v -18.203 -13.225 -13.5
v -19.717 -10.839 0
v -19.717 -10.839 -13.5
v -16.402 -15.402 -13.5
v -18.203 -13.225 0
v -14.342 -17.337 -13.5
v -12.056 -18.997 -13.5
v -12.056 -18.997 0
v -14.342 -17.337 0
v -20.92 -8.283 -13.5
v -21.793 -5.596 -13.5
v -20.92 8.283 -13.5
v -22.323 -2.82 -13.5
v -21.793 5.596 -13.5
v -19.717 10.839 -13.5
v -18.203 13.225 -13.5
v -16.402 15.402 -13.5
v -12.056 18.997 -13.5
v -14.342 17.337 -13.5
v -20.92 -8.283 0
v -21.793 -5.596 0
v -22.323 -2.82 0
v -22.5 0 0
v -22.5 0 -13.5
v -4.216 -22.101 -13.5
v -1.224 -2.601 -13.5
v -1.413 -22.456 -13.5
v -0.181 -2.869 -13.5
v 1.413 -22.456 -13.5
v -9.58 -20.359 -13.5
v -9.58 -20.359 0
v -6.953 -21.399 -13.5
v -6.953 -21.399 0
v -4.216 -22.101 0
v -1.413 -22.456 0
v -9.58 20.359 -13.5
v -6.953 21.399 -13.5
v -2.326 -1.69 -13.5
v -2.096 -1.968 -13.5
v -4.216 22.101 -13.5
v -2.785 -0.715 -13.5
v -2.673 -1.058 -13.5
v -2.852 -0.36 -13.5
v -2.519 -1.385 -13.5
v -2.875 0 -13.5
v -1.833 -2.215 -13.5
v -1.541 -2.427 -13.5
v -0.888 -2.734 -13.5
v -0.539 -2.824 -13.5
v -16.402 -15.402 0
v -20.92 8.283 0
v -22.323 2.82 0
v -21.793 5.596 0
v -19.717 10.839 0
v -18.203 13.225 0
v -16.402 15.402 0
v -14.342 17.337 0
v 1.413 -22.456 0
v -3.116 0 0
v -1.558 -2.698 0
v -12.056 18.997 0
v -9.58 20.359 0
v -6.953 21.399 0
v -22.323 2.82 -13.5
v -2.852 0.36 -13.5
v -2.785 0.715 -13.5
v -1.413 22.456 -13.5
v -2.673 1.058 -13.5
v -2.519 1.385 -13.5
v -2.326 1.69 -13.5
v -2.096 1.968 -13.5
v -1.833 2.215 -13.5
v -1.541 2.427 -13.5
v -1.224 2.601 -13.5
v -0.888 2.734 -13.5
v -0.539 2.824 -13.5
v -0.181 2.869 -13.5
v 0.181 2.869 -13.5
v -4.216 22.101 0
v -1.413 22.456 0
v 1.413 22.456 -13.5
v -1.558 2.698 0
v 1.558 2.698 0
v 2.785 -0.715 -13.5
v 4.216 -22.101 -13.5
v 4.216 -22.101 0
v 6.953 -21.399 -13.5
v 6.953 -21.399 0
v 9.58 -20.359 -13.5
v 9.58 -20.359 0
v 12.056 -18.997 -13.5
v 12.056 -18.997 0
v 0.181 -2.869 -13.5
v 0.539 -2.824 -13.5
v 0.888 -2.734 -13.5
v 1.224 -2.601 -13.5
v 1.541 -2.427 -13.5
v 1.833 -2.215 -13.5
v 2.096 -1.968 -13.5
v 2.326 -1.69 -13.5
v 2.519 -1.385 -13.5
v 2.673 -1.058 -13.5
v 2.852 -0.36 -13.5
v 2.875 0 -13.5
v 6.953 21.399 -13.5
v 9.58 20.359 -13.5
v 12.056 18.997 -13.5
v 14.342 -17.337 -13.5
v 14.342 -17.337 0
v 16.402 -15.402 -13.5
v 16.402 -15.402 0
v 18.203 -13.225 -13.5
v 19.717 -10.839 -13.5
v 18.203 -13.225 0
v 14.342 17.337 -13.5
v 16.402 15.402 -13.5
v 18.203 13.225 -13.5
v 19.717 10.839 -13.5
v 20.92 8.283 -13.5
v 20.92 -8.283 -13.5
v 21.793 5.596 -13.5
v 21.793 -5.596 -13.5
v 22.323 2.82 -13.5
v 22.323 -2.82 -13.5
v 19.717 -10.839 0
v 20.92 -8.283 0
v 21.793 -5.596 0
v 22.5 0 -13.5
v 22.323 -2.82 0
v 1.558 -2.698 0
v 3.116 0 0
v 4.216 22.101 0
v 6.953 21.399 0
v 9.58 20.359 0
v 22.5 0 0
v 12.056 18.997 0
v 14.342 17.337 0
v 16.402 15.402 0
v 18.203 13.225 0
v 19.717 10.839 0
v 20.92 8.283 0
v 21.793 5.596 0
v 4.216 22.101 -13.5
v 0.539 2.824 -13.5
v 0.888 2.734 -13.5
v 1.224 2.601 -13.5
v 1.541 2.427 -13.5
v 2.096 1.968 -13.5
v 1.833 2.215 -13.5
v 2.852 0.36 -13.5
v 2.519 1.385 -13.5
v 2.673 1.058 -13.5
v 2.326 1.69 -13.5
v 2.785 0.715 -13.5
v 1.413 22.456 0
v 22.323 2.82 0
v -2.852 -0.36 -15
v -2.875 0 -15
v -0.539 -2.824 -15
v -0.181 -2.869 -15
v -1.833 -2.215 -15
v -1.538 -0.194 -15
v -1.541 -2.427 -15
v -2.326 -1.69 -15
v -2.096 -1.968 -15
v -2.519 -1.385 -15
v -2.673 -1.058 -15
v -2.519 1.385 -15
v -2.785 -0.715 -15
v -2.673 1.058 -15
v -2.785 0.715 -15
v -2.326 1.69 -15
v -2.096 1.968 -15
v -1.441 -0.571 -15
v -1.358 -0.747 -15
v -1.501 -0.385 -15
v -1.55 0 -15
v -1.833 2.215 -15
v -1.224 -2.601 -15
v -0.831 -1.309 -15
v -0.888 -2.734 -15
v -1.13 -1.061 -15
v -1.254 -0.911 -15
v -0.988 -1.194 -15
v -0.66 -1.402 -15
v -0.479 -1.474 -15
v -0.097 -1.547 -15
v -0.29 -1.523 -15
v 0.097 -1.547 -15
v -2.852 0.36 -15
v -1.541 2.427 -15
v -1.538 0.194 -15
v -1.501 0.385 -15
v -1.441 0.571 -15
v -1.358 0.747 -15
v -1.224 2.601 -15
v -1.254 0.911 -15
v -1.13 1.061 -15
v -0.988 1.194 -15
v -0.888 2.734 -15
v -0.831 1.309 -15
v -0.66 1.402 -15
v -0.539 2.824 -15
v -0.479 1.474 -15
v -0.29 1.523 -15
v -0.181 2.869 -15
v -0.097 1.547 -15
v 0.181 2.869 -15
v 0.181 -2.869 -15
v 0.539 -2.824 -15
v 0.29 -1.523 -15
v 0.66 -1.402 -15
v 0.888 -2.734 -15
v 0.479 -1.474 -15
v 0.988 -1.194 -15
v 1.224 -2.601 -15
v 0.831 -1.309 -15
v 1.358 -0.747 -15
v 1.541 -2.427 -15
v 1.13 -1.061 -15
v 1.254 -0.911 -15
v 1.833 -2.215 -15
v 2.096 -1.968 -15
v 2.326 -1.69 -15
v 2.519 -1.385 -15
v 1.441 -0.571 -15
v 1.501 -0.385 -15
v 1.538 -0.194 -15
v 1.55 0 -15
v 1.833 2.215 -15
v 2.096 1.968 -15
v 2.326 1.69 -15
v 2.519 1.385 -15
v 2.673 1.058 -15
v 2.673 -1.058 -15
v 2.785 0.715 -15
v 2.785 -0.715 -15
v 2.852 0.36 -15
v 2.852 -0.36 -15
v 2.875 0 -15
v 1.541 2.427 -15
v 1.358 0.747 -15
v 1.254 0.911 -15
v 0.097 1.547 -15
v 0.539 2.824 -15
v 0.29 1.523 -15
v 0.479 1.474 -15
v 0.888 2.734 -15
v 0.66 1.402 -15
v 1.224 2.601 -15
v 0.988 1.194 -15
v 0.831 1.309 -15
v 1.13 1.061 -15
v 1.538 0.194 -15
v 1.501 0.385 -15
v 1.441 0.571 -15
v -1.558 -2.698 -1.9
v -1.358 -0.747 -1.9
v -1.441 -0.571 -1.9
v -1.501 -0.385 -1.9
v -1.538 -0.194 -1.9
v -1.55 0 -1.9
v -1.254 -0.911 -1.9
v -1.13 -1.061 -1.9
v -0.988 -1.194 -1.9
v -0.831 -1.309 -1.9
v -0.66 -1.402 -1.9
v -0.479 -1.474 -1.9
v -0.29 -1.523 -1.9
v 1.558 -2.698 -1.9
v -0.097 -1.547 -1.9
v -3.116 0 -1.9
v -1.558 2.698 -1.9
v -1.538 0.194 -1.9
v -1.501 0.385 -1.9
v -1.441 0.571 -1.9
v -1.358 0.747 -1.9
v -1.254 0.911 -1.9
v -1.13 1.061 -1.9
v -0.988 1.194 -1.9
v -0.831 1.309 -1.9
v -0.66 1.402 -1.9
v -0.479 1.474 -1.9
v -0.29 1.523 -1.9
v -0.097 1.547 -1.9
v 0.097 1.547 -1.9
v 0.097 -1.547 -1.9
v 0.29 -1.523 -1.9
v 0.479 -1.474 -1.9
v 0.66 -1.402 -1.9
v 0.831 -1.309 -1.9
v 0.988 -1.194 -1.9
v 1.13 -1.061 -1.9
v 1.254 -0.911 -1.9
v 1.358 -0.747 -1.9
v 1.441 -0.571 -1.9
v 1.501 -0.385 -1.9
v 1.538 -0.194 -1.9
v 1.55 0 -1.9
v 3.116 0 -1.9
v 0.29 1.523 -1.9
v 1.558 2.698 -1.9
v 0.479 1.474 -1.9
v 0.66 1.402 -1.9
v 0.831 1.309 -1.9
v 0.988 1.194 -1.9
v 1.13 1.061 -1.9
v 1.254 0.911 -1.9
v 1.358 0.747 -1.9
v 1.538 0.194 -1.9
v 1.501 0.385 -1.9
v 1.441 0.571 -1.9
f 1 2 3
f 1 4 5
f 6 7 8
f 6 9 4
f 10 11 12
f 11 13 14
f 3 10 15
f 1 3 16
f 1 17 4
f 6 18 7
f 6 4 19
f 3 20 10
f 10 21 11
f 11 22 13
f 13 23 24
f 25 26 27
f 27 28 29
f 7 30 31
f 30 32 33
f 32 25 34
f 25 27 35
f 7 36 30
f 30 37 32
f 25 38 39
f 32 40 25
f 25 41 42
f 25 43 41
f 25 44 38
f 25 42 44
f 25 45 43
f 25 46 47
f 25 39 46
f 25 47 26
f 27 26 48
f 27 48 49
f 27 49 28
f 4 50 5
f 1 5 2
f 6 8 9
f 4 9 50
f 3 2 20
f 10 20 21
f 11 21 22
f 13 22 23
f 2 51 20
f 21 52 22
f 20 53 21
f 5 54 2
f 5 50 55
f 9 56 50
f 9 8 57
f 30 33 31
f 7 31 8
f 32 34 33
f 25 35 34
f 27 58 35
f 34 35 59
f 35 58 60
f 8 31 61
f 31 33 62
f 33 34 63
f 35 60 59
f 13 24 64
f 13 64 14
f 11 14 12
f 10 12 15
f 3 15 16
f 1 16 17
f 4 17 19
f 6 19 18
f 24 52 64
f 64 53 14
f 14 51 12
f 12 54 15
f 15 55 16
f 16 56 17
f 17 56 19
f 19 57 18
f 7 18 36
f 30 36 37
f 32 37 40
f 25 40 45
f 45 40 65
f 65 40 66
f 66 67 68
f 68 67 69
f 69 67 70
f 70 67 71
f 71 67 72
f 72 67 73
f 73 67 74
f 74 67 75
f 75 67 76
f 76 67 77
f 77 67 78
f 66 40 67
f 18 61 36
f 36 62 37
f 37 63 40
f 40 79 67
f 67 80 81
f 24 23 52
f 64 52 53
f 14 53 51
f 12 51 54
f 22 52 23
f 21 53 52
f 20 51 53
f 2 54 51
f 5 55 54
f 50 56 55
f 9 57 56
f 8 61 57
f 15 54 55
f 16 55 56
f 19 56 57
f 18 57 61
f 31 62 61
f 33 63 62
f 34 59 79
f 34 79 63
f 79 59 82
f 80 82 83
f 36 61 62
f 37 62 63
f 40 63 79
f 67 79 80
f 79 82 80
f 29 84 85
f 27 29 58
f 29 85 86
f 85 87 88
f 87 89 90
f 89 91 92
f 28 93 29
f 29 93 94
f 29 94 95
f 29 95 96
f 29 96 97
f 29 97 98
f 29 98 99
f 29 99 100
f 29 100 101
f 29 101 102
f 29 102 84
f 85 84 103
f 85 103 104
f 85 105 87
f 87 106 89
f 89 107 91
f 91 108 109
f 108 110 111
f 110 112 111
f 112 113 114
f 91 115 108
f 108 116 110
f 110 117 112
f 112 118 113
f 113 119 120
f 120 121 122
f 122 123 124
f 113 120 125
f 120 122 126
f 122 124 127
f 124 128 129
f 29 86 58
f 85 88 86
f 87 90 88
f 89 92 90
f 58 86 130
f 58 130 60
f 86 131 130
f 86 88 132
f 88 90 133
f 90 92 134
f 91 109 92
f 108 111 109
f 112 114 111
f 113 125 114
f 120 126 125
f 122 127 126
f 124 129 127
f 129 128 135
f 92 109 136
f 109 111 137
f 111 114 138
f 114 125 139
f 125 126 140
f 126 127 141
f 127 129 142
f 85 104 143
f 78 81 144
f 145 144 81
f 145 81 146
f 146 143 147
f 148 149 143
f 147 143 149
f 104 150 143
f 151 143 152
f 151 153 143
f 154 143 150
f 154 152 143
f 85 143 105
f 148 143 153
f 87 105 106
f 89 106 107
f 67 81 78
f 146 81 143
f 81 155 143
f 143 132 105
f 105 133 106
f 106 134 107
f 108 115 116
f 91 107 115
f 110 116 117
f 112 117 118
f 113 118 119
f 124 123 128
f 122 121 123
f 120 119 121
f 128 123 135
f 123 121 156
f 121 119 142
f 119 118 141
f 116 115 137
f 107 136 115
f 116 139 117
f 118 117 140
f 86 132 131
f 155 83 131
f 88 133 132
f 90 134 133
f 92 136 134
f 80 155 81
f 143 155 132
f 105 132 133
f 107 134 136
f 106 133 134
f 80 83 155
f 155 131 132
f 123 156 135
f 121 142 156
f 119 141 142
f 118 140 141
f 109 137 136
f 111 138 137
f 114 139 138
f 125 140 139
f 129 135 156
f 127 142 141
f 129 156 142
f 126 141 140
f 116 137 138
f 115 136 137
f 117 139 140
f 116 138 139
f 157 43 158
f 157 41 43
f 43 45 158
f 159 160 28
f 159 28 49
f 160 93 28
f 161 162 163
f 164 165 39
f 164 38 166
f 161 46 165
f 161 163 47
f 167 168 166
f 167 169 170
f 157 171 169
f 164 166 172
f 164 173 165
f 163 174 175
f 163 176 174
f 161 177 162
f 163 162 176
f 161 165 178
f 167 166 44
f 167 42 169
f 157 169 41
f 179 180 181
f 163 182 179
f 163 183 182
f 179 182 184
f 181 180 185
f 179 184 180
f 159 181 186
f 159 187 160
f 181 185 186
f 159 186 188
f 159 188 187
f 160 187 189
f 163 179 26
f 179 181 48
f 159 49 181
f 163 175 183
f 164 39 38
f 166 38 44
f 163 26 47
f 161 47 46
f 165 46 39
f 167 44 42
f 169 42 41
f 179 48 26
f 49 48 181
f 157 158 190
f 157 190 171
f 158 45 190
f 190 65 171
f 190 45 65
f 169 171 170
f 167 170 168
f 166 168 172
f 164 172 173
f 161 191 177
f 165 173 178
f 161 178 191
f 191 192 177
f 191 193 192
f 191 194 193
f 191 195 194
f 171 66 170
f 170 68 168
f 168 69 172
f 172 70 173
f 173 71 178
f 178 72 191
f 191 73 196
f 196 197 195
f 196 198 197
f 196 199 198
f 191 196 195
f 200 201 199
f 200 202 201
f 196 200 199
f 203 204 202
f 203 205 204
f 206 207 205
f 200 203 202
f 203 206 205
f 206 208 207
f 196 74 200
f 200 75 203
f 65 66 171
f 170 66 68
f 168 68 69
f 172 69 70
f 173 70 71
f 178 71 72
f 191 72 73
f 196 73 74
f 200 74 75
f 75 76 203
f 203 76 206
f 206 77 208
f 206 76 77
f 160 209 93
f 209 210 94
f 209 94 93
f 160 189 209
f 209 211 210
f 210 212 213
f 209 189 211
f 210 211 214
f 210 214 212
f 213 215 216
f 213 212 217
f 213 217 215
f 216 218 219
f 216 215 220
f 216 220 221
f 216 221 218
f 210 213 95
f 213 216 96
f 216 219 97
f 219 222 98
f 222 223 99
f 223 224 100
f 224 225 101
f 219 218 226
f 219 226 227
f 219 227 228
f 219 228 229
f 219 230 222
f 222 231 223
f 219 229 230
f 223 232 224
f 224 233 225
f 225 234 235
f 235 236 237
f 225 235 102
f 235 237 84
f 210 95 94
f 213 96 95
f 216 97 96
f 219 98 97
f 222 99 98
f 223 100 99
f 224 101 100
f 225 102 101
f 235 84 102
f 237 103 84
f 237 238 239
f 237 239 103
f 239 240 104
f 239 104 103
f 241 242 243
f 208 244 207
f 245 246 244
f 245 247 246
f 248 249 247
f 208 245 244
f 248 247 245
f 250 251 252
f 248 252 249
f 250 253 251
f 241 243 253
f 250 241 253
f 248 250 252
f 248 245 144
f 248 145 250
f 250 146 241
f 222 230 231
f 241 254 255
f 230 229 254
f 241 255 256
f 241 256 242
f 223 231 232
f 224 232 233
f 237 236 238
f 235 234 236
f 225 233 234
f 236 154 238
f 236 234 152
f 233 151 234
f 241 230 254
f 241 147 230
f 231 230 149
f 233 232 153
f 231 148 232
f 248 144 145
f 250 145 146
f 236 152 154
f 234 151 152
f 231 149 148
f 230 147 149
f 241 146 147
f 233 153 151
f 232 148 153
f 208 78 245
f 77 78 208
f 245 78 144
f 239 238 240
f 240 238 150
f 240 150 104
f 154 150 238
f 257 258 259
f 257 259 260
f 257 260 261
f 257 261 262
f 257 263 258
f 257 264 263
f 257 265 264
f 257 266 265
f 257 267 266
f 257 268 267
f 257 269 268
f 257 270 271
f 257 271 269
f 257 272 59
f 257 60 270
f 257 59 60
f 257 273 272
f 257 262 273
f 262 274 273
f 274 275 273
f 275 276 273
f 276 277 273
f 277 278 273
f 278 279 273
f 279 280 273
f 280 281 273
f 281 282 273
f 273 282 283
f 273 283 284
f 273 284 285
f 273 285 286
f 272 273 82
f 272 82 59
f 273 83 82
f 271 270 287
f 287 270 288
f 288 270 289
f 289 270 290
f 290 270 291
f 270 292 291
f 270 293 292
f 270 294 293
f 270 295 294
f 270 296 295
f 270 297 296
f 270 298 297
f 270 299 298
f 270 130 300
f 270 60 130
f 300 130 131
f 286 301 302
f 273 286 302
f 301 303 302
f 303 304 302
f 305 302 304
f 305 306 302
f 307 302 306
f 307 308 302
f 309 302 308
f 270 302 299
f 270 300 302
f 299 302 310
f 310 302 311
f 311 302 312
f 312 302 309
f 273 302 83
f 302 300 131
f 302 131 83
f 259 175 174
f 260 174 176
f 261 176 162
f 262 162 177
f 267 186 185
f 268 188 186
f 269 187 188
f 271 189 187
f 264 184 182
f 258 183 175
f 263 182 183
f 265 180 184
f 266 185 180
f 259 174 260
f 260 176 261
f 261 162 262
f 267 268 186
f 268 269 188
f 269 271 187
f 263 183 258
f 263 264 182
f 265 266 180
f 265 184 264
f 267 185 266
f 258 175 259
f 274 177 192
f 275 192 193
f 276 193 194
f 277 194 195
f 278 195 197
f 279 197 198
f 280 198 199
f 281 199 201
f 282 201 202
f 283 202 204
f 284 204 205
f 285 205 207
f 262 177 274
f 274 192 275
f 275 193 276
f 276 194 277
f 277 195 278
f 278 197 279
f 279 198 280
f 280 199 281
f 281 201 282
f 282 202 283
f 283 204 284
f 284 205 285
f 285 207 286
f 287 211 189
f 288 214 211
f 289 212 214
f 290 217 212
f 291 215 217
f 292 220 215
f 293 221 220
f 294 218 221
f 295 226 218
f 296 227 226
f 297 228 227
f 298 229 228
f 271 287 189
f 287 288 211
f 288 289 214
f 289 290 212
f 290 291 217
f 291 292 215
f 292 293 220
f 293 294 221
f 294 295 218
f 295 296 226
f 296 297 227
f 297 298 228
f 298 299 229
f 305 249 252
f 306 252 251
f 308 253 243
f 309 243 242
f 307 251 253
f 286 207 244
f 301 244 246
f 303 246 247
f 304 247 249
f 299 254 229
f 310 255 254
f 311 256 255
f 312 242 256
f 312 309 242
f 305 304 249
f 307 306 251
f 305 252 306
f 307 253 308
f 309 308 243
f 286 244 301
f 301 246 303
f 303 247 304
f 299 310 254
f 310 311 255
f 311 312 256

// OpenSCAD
$fn = 50;

difference() {
	union() {
		translate(v = [0, 0, -13.5]) {
			cylinder(h = 13.5, r = 22.5);
		}
		#translate(v = [0, 0, -15.0]) {
			cylinder(h = 15, r = 2.875);
		}
	}
	union() {
		translate(v = [0, 0, 0]) {
			rotate(a = [0, 0, 0]) {
				difference() {
					union() {
						translate(v = [0, 0, -1.9]) {
							linear_extrude(height = 1.9) {
								polygon(points = [[3.1158, 0.0], [1.5579000000000005, 2.698361953111554], [-1.5578999999999994, 2.6983619531115544], [-3.1158, 3.815754496783323e-16], [-1.5579000000000014, -2.6983619531115535], [1.557899999999998, -2.6983619531115552]]);
							}
						}
					}
					union();
				}
			}
		}
		#translate(v = [0, 0, -100.0]) {
			cylinder(h = 200, r = 1.55);
		}
	}
}
